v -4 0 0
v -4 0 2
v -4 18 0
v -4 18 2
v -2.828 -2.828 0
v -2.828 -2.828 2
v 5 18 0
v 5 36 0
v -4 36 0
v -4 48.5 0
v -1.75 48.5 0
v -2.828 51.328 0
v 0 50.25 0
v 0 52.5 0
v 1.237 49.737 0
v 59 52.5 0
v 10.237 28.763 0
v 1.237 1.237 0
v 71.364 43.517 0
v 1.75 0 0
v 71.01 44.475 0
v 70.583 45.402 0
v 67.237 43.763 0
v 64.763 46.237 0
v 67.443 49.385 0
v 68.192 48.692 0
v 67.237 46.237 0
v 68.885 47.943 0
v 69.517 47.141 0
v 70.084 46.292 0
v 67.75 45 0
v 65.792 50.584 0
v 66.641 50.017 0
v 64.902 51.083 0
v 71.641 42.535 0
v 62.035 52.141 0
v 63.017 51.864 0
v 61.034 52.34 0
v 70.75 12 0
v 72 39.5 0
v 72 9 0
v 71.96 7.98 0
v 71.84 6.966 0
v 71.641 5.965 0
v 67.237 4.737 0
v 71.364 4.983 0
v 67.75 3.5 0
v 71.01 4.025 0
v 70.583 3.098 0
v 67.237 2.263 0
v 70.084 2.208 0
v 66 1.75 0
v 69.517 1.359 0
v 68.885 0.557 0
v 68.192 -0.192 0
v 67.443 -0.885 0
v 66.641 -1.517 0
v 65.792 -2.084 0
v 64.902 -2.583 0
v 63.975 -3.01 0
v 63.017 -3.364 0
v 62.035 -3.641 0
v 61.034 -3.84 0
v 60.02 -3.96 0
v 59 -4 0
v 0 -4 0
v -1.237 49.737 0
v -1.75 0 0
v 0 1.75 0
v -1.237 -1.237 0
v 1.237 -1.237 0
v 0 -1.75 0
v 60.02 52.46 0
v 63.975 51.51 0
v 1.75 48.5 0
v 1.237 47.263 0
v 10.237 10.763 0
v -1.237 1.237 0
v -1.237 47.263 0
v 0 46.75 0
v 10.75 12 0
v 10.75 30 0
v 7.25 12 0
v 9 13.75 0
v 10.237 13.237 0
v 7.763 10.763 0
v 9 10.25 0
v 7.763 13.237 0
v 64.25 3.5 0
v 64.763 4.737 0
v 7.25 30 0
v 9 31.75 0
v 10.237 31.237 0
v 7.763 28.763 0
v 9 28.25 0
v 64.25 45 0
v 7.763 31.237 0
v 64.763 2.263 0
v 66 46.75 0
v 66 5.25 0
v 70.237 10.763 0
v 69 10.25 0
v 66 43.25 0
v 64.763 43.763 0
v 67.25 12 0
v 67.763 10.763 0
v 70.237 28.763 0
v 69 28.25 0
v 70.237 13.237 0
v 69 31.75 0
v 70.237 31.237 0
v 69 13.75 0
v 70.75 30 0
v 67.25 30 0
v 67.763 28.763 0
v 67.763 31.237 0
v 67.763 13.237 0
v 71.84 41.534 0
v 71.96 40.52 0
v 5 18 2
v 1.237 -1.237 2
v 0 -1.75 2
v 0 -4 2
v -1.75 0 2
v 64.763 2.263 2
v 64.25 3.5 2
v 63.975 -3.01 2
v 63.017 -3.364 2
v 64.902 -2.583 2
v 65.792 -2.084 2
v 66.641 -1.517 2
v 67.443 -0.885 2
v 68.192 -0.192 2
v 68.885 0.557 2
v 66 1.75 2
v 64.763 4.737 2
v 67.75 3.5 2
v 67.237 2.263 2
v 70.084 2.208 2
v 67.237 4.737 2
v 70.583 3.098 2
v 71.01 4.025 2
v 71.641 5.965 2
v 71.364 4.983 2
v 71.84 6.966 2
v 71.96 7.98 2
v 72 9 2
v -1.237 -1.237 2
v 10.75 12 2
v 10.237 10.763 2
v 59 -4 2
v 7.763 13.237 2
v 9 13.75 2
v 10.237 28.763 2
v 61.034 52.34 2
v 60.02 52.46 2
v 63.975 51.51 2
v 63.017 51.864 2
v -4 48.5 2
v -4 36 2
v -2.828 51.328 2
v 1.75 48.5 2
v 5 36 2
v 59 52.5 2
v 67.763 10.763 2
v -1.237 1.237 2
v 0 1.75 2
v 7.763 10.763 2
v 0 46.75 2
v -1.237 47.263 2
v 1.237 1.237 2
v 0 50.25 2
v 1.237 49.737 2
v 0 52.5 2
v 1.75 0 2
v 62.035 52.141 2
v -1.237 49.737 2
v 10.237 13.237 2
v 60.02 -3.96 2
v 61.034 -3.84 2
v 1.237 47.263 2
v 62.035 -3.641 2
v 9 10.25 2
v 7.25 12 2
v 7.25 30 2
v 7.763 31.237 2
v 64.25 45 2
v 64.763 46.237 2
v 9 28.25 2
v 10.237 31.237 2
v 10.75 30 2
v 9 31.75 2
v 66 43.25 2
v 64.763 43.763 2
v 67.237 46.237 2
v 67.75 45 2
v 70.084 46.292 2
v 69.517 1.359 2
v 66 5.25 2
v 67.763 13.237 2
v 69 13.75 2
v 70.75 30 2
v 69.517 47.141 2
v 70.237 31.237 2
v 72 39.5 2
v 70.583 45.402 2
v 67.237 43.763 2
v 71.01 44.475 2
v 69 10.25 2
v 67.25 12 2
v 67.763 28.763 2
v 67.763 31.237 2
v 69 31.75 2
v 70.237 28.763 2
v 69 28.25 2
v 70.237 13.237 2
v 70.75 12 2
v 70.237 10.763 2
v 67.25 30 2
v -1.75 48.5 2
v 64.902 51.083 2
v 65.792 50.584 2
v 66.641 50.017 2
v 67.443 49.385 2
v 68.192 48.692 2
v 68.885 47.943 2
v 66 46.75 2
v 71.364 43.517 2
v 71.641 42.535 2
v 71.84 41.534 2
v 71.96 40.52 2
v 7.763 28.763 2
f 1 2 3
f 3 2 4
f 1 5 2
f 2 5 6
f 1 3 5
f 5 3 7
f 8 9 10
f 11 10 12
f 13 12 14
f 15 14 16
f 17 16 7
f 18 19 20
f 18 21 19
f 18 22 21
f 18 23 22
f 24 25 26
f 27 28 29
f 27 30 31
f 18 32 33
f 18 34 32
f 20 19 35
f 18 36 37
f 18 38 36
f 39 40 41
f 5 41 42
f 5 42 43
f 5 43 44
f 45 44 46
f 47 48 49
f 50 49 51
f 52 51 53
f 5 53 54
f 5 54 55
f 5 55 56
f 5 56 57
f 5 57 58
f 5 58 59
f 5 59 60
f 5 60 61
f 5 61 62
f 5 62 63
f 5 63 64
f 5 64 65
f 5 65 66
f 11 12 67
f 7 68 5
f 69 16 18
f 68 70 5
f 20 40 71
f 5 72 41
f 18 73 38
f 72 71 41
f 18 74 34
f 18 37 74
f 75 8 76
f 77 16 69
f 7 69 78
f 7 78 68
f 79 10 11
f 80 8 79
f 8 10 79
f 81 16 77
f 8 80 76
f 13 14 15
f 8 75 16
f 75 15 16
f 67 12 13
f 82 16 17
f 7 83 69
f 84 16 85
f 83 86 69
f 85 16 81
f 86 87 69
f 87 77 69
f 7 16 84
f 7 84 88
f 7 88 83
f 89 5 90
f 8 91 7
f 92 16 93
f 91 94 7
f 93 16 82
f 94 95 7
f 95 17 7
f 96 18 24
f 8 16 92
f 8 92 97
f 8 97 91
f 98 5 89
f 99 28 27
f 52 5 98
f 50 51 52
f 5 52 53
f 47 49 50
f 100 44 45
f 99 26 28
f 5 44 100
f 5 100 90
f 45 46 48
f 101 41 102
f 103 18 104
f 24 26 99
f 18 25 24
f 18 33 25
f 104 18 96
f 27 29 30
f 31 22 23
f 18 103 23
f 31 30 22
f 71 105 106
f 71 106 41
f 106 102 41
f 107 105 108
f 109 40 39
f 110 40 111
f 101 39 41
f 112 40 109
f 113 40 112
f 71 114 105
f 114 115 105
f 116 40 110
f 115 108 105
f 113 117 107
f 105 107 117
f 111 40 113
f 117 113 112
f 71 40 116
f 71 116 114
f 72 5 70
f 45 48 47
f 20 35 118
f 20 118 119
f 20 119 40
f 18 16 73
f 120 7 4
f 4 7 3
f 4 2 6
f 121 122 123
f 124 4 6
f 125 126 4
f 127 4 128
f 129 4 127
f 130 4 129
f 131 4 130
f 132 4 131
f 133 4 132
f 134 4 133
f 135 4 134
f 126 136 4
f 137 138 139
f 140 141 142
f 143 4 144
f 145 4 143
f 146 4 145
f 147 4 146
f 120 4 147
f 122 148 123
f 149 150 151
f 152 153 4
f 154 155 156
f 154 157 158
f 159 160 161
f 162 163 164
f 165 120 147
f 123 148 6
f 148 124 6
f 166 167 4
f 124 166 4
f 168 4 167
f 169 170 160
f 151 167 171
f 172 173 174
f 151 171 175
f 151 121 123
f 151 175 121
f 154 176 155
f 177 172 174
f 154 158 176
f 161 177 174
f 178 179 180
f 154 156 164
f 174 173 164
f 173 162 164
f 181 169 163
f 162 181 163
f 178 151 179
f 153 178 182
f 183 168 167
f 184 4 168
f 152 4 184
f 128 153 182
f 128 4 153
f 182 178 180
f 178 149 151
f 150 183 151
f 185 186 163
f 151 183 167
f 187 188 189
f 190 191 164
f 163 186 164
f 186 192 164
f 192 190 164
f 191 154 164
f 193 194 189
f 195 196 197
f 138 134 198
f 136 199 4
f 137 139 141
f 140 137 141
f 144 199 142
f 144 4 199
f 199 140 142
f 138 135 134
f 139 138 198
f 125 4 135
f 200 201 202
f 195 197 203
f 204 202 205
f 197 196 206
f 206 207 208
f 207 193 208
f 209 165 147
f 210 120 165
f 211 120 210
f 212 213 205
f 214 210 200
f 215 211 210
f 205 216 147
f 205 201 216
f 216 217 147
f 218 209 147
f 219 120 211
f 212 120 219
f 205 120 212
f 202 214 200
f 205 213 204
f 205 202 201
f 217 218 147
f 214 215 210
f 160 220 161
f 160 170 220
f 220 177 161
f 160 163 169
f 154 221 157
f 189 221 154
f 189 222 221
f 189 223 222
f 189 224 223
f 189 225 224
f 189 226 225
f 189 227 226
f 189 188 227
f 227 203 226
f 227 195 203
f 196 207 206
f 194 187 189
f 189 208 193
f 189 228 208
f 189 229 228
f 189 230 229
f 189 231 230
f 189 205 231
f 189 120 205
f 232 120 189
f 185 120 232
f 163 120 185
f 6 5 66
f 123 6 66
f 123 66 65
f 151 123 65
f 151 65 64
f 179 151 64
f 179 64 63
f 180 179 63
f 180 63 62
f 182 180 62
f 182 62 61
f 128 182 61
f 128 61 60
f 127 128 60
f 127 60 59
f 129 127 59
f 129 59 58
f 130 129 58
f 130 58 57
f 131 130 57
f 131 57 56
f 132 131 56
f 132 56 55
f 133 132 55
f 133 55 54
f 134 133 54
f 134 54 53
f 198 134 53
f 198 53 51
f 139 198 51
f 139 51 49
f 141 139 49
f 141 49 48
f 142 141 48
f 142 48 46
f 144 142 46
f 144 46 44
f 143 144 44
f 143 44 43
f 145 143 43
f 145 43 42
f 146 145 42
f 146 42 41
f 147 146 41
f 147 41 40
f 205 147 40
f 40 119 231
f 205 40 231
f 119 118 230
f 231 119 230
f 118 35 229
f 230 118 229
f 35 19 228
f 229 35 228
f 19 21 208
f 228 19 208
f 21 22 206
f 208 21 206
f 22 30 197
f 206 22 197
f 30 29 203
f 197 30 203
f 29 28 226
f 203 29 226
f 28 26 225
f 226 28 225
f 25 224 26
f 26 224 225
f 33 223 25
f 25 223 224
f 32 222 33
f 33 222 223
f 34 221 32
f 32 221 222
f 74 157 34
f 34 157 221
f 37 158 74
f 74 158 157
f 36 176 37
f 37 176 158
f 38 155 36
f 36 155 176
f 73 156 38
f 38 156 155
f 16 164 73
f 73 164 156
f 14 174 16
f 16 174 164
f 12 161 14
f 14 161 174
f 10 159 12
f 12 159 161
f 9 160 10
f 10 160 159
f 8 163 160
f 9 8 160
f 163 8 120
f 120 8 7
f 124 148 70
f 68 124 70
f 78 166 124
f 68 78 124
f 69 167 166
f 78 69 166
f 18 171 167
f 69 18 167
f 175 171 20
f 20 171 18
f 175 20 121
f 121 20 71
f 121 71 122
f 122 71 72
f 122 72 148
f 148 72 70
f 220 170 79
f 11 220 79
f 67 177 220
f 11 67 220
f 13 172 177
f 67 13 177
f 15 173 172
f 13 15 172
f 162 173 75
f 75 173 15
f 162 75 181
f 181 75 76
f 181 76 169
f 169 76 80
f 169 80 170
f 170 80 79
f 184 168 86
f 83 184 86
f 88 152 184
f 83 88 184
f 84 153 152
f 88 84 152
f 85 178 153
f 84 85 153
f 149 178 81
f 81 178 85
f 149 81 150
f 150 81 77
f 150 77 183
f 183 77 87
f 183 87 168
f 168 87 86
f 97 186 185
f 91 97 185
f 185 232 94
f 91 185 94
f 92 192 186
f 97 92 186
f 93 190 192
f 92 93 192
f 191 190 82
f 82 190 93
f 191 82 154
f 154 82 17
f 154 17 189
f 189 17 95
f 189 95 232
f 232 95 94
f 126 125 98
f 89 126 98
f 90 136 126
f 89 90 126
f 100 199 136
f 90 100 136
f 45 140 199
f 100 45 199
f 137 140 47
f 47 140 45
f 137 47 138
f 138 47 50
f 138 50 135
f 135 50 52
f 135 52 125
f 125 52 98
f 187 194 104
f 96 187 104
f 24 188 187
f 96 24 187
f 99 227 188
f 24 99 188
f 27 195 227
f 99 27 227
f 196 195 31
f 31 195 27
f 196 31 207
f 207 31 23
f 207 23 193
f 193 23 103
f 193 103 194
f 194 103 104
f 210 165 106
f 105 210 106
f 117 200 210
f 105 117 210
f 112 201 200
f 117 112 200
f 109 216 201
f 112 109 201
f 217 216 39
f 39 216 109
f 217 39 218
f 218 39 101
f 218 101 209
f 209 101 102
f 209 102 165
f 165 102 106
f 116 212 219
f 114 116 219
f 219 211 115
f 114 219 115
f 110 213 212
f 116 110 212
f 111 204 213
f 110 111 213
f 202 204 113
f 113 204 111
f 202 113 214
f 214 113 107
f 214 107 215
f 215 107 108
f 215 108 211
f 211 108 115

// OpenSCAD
// file: raid3r/raid3r.scad
/*Pequeña biblioteca con las funciones mas comunes*/

module agujereado(X,Y,H){
	union(){
		for(j=[0:X-1])
		{
			translate([0,j*8,0])
			{
				for(i=[0:Y-1])
				{
					translate([i*6,0,-1])cylinder(r=1.2, h=H, $fn=10);
				}
			}
		}
	}
}

module dynahole(H){
	translate([-45.5/2,-10,1])union(){
		translate([3.5+6,16,0])agujereado(4,1,H);
		translate([9.5+26.5,16,0])agujereado(4,1,H);
		translate([45.5/2,10,-1])cylinder(r=11.5,h=H);	
		translate([(45.5-20)/2,6.5,-1])cube([20,36,H]);
		translate([22.5,46,0])union(){
			translate([7,0,-1])cylinder(r=1.5, h=H, $fn=10);
			translate([-7,0,-1])cylinder(r=1.5, h=H, $fn=10);
		}
	}
}

module cruz(H){
	translate([-34,-13,3])union(){
		translate([34,13,-3]) cylinder(r=4,h=H);
		translate([42,13,-3]) cylinder(r=1.5,h=H);
		translate([26,13,-3]) cylinder(r=1.5,h=H);
		translate([34,21,-3]) cylinder(r=1.5,h=H);
		translate([34,5,-3]) cylinder(r=1.5,h=H);
	}
}

module miniservo(H){
	translate([-15,-7,0])union(){
		translate([15,7,0])rotate([0,0,0])cylinder(r=8,h=H);
		translate([-1.75,7,0])union(){
			cylinder(r=1.5, h=H,$fn=20);
			translate([27.5,0,0])cylinder(r=1.5, h=H,$fn=20);
		}
	}
}

module beagleboneHoles(z){
union(){
	translate([0,0,-1])cylinder(r=2,h=z, $fn=8);
	translate([0,46.5,-1])cylinder(r=2,h=z, $fn=8);
	translate([64.5+1.5,2.5,-1])cylinder(r=2,h=z, $fn=8);
	translate([64.5+1.5,44,-1])cylinder(r=2,h=z, $fn=8);
	translate([0,0,-1])cylinder(r=3,h=3, $fn=8);
	translate([0,46.5,-1])cylinder(r=3,h=3, $fn=8);
	translate([64.5+1.5,2.5,-1])cylinder(r=3,h=3, $fn=8);
	translate([64.5+1.5,44,-1])cylinder(r=3,h=3, $fn=8);
	}
}
// main file
use <raid3r/raid3r.scad>

z=2;

rPico=13;

x=9;
y=12;

difference(){
	union(){
		hull(){
			translate([0,0,0])cylinder(r=4,h=z, $fn=8);
			translate([0,48.5,0])cylinder(r=4,h=z, $fn=8);
			translate([65.5-rPico/2,2.5+rPico/2,0])cylinder(r=rPico,h=z, $fn=80);
			translate([65.5-rPico/2,46-rPico/2,0])cylinder(r=rPico,h=z, $fn=80);	
		}
	

	}
	translate([0,0,-1])cylinder(r=3.5/2,h=10, $fn=8);
	translate([0,48.5,-1])cylinder(r=3.5/2,h=10, $fn=8);
	translate([66,45,-1])cylinder(r=3.5/2,h=10, $fn=8);
	translate([66,3.5,-1])cylinder(r=3.5/2,h=10, $fn=8);
	translate([-19,18,-1])cube([24,18,10]);
//Agujeros OpenCM
	translate([0+x,0+y,-1])cylinder(r=3.5/2,h=5, $fn=8);
	translate([60+x,0+y,-1])cylinder(r=3.5/2,h=5, $fn=8);
	translate([0+x,18+y,-1])cylinder(r=3.5/2,h=5, $fn=8);
	translate([60+x,18+y,-1])cylinder(r=3.5/2,h=5, $fn=8);
}
